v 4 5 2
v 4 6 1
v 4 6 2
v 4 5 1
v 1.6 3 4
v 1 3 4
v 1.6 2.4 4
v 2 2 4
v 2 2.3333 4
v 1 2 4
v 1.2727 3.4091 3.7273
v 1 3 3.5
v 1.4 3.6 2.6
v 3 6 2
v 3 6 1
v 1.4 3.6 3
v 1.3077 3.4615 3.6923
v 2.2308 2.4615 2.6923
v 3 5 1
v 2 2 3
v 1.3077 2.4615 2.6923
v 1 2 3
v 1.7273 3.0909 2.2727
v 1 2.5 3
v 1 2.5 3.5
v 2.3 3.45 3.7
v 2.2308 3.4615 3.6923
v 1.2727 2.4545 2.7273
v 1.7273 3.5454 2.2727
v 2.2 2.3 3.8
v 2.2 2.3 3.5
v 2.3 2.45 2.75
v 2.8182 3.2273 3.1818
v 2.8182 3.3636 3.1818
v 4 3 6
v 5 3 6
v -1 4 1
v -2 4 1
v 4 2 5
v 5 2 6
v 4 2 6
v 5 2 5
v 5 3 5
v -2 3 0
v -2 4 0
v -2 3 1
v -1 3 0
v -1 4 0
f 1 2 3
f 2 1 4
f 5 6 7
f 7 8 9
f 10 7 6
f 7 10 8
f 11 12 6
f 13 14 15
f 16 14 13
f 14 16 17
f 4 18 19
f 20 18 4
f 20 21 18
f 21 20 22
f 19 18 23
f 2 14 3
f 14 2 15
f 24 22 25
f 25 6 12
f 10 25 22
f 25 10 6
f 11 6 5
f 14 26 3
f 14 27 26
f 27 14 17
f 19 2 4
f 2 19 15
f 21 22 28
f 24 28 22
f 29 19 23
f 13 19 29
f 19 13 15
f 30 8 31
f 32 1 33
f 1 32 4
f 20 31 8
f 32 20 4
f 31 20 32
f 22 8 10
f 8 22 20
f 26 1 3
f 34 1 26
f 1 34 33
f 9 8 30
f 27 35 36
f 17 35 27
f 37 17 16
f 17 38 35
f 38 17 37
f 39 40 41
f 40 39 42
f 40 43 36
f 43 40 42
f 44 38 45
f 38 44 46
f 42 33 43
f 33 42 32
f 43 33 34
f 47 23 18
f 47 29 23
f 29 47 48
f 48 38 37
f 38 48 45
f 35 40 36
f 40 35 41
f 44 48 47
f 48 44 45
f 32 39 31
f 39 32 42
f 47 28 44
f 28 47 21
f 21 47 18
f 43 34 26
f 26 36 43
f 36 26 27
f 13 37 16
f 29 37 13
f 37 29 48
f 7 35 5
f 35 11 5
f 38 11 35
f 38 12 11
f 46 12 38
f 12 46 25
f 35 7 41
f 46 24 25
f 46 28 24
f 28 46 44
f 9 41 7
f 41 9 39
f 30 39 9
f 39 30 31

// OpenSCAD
// Function to create a hull around two 3D coordinates
module createHull(coord1, coord2) {
    hull() {
        translate(coord1)
        cube([1, 1, 1]);

        translate(coord2)
        cube([1, 1, 1]);
    }
}

// List of pairs of 3D coordinates
coordinatePairs = [
    [[3, 5, 1], [1, 2, 3]],
    [[-2, 3, 0], [4, 2, 5]],
    // Add more pairs of 3D coordinates as needed
];

// Create hulls around pairs of 3D coordinates
for (pair = coordinatePairs) {
    createHull(pair[0], pair[1]);
}
